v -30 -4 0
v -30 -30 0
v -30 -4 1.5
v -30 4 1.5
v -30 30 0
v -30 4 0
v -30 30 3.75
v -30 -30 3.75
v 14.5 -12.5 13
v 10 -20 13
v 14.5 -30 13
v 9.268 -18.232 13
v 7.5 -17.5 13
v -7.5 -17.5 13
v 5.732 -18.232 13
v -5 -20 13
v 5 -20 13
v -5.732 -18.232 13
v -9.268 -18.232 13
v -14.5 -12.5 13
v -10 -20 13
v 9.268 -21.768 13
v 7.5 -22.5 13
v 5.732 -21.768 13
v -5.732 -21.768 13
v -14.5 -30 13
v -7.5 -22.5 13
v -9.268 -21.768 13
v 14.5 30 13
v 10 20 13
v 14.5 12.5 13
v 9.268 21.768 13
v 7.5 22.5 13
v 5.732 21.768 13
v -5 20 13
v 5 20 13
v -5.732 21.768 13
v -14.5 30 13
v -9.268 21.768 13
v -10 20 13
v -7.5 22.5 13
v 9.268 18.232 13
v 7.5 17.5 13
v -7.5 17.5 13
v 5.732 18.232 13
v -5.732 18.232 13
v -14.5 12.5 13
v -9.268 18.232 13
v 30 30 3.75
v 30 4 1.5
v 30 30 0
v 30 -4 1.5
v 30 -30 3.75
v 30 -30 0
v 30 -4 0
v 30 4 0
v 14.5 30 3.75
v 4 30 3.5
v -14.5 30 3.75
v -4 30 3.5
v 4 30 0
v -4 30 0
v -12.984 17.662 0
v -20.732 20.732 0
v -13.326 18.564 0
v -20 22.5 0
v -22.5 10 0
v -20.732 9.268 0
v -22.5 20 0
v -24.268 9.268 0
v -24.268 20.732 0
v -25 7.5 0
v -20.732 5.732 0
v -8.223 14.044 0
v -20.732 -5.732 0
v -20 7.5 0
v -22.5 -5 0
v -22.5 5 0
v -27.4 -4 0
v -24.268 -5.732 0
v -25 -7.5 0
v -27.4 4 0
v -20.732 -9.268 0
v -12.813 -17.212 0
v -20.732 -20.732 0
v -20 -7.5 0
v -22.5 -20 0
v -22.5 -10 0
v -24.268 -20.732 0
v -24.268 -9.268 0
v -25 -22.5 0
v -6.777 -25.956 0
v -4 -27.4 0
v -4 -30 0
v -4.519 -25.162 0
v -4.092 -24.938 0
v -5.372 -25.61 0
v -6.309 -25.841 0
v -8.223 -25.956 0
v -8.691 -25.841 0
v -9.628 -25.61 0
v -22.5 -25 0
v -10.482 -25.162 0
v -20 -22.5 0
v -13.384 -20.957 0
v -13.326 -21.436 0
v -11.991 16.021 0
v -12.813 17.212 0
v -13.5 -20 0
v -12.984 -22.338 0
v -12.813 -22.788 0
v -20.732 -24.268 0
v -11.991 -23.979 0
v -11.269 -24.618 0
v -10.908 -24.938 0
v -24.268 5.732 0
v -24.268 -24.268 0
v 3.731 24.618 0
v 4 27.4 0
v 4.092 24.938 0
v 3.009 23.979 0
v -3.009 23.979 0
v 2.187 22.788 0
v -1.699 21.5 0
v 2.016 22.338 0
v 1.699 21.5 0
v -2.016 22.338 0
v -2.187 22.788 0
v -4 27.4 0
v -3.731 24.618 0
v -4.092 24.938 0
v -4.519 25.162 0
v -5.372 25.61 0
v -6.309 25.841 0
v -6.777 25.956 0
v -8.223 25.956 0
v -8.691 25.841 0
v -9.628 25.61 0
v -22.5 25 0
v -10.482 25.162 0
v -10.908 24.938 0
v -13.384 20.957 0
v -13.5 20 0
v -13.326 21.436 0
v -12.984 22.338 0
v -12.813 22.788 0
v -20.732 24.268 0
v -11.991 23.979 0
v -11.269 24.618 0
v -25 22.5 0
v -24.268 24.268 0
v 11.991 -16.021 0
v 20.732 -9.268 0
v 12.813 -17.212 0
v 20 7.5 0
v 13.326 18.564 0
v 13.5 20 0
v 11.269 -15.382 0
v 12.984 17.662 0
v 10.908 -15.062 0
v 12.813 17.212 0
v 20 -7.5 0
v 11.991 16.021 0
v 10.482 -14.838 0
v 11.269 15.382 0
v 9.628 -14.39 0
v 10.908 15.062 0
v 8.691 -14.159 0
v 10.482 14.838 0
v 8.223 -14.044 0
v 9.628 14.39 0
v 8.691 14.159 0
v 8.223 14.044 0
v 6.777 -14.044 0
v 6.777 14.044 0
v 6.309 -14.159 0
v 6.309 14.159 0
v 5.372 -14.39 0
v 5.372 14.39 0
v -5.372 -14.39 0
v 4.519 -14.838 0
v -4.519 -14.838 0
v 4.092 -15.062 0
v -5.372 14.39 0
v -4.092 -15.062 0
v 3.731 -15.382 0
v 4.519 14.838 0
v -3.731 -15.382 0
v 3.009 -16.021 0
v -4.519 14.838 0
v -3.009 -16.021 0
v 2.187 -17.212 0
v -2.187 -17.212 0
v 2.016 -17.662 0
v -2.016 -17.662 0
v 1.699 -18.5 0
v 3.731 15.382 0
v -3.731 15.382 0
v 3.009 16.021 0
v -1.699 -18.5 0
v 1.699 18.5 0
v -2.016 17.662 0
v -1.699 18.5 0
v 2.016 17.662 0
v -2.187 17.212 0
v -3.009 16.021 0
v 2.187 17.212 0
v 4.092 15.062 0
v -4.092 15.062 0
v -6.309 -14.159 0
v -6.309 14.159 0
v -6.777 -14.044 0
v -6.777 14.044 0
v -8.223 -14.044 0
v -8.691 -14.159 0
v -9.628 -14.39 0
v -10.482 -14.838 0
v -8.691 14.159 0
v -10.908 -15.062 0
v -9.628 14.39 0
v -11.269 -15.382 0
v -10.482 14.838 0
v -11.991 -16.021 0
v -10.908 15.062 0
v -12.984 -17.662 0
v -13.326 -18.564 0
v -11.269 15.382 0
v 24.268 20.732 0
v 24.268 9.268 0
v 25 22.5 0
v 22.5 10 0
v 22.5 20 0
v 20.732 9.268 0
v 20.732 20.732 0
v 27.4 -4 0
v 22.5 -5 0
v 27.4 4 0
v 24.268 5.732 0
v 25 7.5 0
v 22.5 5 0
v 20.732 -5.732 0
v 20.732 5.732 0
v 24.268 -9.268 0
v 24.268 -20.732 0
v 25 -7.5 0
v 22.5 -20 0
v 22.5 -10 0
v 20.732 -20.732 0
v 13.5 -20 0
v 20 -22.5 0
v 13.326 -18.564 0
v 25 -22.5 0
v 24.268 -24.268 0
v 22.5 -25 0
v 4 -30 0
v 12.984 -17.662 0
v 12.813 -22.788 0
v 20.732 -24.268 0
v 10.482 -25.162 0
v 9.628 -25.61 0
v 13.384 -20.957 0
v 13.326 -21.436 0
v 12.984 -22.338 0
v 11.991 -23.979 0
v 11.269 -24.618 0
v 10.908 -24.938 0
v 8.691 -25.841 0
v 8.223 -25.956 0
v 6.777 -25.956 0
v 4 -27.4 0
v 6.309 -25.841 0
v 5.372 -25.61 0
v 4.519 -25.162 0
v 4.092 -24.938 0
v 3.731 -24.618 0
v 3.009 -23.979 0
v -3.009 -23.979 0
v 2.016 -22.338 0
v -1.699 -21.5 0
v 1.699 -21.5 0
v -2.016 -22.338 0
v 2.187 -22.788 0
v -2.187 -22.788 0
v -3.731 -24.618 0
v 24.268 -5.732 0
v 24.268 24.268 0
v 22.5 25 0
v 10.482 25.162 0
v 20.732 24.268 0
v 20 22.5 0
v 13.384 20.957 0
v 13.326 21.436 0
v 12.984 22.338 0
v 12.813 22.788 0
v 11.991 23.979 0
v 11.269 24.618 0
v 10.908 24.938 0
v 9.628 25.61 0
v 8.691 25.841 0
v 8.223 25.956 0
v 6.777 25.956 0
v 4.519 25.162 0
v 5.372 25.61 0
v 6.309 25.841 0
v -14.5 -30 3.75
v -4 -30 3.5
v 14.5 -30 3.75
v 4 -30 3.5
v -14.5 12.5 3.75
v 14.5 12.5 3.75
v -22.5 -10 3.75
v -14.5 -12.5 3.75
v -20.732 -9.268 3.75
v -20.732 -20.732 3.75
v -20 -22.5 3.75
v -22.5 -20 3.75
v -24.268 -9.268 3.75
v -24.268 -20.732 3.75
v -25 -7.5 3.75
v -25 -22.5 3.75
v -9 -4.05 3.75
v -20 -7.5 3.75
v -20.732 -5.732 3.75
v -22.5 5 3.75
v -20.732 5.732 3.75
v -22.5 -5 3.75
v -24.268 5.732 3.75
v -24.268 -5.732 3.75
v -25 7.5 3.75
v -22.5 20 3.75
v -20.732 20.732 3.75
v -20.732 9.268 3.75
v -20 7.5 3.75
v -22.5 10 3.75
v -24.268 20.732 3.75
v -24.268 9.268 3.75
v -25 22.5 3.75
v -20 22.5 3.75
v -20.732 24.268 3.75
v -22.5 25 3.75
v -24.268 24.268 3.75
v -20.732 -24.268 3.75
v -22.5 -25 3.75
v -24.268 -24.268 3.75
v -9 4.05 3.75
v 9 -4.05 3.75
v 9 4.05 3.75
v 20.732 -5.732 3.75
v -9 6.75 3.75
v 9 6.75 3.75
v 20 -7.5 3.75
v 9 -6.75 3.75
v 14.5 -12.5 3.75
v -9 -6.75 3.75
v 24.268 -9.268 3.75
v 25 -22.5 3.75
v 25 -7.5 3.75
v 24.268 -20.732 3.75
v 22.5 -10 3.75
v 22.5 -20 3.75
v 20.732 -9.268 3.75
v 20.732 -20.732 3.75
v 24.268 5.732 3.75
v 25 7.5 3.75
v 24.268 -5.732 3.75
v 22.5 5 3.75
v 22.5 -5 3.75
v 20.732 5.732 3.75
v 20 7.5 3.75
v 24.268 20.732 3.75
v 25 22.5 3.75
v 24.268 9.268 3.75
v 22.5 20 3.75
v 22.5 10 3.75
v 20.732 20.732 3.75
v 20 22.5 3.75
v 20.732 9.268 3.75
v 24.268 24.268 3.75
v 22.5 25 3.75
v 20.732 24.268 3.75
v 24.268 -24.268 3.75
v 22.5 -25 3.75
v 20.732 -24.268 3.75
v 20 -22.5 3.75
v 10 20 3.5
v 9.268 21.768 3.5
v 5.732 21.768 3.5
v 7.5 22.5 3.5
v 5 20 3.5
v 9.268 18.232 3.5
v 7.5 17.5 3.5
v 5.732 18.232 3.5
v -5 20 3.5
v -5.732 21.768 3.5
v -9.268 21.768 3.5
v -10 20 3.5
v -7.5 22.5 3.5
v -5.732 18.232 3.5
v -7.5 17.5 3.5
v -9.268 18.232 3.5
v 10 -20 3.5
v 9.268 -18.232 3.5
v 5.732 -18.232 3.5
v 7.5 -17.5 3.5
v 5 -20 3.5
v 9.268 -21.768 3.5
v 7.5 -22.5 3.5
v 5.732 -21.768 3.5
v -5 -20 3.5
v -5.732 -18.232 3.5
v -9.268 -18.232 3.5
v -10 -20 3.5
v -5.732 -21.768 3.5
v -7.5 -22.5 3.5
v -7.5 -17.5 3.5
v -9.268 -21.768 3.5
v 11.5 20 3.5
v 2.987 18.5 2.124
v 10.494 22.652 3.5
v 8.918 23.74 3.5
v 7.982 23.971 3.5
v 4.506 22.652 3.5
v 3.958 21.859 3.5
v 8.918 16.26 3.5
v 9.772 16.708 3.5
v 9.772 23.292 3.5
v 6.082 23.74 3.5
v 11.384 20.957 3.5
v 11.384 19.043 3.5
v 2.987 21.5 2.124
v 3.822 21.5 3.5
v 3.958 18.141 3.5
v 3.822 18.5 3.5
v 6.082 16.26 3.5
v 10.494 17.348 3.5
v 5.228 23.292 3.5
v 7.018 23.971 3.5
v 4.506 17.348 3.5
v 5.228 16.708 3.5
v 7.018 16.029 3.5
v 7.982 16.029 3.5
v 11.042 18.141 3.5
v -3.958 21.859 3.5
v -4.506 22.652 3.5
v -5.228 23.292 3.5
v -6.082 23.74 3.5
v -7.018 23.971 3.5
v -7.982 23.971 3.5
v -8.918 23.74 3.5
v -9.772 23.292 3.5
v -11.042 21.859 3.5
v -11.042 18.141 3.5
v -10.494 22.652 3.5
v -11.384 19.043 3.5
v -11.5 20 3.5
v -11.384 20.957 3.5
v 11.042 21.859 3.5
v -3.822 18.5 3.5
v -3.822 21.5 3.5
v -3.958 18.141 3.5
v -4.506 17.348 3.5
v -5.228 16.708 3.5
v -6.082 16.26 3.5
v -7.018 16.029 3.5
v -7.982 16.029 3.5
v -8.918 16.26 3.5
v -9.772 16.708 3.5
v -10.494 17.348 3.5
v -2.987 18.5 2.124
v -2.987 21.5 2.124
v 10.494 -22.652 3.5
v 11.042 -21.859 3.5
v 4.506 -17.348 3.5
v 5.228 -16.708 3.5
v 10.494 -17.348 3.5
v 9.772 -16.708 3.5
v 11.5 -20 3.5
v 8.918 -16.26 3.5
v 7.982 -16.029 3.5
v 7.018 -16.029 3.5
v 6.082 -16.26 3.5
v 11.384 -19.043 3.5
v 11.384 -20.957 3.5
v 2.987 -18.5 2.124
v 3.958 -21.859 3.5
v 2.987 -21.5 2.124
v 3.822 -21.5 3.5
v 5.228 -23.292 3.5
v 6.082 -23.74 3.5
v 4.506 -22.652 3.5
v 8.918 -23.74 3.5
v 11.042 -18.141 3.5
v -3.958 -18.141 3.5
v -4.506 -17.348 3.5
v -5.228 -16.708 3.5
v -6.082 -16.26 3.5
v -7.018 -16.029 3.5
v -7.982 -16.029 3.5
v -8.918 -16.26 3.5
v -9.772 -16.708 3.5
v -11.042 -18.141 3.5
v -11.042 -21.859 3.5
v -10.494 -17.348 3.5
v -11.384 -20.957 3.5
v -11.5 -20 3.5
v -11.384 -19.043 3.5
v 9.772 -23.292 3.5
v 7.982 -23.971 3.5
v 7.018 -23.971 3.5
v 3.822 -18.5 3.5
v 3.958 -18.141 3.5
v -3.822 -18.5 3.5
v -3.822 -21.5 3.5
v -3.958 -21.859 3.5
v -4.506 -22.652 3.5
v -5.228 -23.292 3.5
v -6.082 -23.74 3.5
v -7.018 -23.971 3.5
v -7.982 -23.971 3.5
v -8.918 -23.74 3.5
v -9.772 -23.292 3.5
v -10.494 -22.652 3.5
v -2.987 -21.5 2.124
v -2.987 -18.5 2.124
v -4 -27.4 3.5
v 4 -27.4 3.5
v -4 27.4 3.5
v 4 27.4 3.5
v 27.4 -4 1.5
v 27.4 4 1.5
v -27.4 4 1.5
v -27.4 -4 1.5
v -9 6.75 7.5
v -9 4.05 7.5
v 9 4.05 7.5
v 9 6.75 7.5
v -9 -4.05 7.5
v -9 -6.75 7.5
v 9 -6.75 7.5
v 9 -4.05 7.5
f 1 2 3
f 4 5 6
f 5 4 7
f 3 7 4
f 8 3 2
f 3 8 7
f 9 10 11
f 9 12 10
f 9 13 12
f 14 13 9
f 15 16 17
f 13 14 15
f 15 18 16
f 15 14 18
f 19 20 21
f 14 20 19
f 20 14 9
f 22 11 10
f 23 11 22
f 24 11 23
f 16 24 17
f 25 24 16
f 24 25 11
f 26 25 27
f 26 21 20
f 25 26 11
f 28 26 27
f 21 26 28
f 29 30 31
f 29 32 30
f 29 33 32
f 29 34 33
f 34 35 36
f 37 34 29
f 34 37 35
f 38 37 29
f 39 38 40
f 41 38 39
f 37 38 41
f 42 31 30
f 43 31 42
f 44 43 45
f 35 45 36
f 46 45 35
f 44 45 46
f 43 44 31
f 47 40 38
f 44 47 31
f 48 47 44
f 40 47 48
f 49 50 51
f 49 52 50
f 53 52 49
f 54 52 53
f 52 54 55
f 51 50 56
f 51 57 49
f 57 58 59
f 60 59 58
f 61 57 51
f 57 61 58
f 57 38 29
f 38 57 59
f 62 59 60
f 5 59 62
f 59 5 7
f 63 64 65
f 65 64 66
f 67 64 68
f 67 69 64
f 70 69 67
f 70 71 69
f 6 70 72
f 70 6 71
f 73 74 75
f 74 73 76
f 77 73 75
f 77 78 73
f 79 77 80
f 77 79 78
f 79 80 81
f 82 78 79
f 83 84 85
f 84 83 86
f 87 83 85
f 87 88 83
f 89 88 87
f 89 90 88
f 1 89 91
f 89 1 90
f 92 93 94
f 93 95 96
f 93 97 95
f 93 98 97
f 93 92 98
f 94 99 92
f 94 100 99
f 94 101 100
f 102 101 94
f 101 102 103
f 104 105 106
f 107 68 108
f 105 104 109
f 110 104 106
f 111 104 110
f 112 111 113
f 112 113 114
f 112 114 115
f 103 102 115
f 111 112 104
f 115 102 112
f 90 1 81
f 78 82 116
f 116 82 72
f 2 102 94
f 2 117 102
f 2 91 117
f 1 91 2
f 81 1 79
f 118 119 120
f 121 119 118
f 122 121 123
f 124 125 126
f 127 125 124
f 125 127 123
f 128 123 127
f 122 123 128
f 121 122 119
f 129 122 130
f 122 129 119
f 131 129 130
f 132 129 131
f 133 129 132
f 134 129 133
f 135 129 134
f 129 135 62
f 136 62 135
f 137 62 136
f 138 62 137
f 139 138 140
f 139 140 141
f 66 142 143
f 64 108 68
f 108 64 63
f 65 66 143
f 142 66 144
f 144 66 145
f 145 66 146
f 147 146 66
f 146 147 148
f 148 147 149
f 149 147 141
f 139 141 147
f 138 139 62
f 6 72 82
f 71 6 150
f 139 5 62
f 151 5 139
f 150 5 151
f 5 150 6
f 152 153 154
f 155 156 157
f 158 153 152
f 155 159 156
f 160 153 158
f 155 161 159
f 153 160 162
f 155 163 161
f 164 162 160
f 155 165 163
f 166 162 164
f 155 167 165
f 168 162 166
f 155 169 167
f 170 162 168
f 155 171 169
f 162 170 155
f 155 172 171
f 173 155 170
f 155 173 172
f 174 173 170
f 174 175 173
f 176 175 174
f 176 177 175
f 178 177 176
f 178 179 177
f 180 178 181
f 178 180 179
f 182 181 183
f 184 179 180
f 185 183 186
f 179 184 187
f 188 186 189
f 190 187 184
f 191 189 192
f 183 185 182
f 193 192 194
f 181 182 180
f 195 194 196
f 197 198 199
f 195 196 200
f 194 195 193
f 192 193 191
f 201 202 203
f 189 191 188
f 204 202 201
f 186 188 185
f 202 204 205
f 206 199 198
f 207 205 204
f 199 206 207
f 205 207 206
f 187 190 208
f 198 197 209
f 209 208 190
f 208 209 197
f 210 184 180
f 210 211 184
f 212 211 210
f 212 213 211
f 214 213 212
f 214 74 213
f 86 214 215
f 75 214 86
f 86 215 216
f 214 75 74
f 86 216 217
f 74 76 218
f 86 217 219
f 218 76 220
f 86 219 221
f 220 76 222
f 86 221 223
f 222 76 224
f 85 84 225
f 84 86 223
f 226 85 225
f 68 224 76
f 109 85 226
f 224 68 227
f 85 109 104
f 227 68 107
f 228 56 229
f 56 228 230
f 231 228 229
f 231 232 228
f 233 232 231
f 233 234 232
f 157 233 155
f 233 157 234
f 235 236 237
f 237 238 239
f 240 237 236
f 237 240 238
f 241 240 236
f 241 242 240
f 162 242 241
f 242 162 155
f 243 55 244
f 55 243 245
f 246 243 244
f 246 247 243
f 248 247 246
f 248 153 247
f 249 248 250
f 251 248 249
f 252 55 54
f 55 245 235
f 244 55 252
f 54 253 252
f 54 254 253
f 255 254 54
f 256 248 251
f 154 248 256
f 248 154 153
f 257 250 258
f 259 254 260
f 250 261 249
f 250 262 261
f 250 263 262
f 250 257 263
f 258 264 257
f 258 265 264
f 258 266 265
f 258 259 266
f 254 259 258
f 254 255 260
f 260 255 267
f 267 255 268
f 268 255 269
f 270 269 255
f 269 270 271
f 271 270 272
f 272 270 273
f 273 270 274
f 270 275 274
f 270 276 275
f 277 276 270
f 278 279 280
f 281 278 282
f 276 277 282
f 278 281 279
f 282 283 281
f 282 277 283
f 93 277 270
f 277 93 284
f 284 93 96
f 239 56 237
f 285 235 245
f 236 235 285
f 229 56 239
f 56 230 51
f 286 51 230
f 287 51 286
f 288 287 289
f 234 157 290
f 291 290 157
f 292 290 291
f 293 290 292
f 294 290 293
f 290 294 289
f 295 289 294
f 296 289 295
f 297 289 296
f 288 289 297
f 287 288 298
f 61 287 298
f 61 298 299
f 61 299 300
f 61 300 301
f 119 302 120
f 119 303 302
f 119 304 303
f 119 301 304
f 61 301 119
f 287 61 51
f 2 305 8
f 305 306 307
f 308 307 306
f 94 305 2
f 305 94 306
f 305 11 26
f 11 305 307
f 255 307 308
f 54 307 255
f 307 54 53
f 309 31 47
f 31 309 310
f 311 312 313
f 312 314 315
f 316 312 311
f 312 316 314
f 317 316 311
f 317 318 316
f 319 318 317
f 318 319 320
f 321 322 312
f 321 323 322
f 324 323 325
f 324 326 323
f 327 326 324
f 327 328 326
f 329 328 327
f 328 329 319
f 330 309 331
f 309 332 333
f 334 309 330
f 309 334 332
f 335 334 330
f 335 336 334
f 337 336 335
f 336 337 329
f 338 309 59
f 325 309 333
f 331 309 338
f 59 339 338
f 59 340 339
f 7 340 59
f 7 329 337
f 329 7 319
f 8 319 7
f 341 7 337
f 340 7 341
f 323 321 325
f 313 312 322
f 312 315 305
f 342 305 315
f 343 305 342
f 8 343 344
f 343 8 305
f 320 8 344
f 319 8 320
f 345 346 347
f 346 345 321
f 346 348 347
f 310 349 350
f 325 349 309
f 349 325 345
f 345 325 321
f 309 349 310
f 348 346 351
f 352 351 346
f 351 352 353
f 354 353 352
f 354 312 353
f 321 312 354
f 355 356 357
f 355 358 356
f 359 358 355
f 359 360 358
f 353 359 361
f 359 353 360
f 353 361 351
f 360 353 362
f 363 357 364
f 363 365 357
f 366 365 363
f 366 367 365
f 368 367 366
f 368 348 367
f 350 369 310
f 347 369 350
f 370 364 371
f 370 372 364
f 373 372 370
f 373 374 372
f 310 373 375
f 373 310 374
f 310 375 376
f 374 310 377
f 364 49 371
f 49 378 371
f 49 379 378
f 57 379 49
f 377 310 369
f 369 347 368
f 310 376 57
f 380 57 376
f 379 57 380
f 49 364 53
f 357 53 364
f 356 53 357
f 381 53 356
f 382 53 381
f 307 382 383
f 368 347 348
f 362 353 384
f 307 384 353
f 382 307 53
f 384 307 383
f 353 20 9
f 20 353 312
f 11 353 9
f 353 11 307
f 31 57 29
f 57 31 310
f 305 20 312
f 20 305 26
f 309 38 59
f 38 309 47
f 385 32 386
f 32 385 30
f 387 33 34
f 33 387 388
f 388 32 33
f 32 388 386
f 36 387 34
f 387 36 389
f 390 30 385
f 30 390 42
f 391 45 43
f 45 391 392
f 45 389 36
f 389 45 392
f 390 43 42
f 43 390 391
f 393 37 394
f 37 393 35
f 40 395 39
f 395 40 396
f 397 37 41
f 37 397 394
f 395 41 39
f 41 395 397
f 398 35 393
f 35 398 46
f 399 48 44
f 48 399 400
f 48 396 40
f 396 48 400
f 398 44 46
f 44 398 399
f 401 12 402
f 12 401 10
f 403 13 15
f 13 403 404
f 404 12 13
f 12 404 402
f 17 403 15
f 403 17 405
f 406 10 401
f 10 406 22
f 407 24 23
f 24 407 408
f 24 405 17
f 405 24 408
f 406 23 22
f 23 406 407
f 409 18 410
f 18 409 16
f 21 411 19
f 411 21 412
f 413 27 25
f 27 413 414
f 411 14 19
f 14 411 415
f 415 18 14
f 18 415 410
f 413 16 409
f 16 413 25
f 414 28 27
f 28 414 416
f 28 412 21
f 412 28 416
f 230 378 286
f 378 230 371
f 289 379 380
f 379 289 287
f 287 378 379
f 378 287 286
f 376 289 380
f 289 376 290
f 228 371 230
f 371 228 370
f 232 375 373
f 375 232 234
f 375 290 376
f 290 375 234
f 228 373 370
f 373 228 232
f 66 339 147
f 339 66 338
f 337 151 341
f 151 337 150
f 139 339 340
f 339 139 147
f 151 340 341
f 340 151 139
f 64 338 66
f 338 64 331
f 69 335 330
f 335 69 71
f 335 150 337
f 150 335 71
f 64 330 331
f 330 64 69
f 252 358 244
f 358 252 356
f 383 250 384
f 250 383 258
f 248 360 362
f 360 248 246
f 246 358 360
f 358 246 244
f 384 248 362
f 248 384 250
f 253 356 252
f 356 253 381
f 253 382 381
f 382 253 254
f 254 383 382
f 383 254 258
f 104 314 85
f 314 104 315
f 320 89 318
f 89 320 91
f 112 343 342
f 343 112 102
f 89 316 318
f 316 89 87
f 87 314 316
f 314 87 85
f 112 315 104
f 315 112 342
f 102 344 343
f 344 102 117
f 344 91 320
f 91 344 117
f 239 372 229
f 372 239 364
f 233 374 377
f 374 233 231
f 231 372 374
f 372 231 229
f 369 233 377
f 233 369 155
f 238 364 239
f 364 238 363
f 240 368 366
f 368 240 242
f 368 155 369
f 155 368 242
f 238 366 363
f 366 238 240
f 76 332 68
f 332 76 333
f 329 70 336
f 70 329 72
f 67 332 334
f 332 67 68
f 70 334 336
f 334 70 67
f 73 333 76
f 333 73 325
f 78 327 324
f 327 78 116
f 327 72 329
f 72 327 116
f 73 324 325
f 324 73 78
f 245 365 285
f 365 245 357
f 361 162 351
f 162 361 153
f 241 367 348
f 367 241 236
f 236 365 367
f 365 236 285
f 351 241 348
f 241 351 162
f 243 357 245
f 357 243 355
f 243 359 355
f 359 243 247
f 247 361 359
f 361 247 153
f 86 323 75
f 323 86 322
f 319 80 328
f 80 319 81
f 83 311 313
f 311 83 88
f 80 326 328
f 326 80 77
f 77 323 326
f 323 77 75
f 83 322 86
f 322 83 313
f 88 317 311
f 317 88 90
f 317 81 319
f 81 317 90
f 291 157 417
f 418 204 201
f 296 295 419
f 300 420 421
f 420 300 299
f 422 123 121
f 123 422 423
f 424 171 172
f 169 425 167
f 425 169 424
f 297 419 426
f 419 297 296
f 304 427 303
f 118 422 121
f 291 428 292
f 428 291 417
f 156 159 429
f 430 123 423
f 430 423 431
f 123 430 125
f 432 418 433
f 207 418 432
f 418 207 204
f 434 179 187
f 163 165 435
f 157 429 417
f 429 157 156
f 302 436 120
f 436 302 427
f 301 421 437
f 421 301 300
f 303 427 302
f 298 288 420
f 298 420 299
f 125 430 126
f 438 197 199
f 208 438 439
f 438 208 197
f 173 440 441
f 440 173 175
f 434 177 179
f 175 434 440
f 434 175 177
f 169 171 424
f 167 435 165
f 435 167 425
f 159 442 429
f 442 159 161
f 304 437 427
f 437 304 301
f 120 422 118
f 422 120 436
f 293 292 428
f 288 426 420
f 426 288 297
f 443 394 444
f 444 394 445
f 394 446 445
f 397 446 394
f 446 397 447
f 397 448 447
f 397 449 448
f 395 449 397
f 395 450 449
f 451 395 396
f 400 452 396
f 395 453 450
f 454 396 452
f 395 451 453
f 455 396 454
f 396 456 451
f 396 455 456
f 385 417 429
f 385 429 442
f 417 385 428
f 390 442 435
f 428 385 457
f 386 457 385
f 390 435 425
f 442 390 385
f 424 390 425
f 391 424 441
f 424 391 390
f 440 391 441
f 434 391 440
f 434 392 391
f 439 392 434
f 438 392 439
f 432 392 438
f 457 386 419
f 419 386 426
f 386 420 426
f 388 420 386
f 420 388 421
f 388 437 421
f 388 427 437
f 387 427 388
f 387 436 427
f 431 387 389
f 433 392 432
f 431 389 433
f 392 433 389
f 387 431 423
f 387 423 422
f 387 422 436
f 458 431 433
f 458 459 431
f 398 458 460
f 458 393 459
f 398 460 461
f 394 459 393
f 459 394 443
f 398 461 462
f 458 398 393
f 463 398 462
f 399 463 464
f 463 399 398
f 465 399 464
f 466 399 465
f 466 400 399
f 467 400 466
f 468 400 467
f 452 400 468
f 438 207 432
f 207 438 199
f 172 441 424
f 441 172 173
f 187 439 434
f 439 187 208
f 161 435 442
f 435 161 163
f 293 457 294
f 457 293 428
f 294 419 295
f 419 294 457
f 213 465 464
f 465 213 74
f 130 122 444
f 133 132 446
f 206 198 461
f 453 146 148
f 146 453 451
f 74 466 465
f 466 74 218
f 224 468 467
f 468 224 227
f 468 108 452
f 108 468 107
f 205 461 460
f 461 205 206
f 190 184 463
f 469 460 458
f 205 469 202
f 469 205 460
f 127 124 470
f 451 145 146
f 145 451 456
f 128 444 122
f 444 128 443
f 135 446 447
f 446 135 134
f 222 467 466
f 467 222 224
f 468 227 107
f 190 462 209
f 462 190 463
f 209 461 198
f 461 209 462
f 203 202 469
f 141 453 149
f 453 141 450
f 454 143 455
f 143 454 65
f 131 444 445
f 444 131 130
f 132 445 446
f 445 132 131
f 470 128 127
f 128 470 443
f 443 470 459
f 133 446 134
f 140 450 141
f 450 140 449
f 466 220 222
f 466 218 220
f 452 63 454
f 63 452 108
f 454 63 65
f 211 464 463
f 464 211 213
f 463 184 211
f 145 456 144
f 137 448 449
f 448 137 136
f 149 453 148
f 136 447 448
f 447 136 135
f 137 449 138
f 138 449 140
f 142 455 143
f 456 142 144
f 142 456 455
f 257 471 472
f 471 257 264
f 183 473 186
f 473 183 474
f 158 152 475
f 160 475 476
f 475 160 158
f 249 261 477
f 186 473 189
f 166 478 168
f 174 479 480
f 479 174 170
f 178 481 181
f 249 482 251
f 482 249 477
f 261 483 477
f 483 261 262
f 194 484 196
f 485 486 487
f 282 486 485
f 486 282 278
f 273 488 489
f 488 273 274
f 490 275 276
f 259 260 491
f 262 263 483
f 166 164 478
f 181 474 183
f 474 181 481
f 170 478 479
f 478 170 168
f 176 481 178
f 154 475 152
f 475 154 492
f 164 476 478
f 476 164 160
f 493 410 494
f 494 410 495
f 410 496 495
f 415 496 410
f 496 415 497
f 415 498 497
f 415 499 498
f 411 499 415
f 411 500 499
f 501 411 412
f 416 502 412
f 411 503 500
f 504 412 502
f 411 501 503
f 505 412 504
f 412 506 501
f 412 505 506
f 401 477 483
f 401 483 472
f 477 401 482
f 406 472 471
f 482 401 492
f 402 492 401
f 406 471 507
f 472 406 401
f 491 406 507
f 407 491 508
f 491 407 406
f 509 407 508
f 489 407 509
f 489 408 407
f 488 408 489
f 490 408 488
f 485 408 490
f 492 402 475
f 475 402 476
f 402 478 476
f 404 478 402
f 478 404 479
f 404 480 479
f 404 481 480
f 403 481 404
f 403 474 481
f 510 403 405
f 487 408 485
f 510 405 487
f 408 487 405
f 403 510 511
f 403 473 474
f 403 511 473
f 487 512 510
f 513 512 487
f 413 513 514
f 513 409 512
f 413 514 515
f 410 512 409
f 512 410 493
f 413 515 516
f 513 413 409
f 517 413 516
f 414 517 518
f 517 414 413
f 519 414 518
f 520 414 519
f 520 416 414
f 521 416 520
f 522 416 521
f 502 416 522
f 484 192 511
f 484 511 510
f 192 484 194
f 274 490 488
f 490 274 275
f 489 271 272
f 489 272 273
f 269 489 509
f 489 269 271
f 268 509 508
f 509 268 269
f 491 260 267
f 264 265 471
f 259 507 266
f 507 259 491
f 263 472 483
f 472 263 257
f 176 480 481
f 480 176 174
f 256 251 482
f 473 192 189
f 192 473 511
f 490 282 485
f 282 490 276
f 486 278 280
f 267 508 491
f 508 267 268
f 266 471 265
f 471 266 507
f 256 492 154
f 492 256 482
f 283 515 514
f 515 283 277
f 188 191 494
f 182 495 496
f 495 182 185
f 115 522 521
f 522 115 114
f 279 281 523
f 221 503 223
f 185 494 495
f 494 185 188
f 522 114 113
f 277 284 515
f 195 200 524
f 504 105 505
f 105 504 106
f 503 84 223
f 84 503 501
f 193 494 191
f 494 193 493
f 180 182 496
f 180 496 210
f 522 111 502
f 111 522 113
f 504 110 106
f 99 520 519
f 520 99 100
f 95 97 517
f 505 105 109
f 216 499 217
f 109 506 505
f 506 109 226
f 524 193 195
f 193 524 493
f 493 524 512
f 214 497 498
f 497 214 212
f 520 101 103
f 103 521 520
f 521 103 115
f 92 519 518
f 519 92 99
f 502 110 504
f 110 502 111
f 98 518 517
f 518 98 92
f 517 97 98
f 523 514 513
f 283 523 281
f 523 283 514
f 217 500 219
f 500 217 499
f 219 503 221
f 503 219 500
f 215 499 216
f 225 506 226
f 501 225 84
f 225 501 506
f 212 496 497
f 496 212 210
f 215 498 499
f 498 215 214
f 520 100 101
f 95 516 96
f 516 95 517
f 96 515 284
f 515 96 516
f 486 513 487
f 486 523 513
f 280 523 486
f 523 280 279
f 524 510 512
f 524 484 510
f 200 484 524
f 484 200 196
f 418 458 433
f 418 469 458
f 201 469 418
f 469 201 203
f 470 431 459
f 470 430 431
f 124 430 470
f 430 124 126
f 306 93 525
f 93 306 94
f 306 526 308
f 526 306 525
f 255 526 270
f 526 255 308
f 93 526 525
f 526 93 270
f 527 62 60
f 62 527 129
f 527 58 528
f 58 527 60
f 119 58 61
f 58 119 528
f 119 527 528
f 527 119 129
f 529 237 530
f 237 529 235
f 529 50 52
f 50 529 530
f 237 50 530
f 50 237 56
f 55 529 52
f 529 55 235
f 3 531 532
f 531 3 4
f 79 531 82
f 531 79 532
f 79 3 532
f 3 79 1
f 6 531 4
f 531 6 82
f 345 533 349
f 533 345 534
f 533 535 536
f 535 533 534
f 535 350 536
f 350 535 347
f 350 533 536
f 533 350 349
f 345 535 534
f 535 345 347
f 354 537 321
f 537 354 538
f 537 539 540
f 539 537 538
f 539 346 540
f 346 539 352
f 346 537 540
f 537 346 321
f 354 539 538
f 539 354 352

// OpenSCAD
//block shape
x=60;
y=60;
z=13;

// track channel
f=x+10;
g=25;
h=9.5;
// block top
e=20;
r=y+10;
t=16.5;

// spacing of screw holes
cx=15;
cy=40;
dx=15;
dy=45;


difference()
{
    translate([0,0,z]/2) cube ([x,y,z],center=true);
    translate([0,0,z+4]/2) cube([f,g,h],center=true);
    translate([49,0,z+11]/2) cube ([e,r,t],center=true);
        translate([-49,0,z+11]/2) cube ([e,r,t],center=true);

  translate([cx,cy,0]/2) cylinder(d=5, h=50,  center=true);
  translate([-cx,cy,0]/2) cylinder(d=5, h=50,  center=true);
    translate([cx,-cy,0]/2) cylinder(d=5, h=50,  center=true);
    translate([-cx,-cy,0]/2) cylinder(d=5, h=50,  center=true);
  translate([dy,dy,0]/2) cylinder(d=5, h=50,  center=true);
  translate([-dy,dy,0]/2) cylinder(d=5, h=50,  center=true);
    translate([dy,-dy,0]/2) cylinder(d=5, h=50,  center=true);
    translate([-dy,-dy,0]/2) cylinder(d=5, h=50,  center=true);  
    translate([dy,dx,0]/2) cylinder(d=5, h=50,  center=true);
  translate([-dy,dx,0]/2) cylinder(d=5, h=50,  center=true);  
  translate([dy,-dx,0]/2) cylinder(d=5, h=50,  center=true);
  translate([-dy,-dx,0]/2) cylinder(d=5, h=50,  center=true);  
    
 translate([cx,cy,0]/2)  cylinder(d1=16, d2=8, h=7,  center=true);
 translate([-cx,cy,0]/2) cylinder(d1=16, d2=8, h=7, center=true);
    translate([cx,-cy,0]/2) cylinder(d1=16, d2=8, h=7,  center=true);
    translate([-cx,-cy,0]/2) cylinder(d1=16, d2=8, h=7,  center=true);    
// zip tie knotches    
    translate([0,-cy/2,11.5-10]) cube([18,3,4],center=true);
    translate([0,cy/2,11.5-10]) cube([18,3,4],center=true);
// removal knotches
       translate([0,-(6.8+51)/2,11.5-10]) cube([8,3,4],center=true);
   translate([0,(6.8+51)/2,11.5-10]) cube([8,3,4],center=true);
   translate([(6.8+51)/2,0,11.5-11]) cube([3,8,2],center=true);
   translate([-(6.8+51)/2,0,11.5-11]) cube([3,8,2],center=true);
}

translate([0,(6.8+4)/2,z-8]) cube([18,2.7,5],center=true);
translate([0,-(6.8+4)/2,z-8]) cube([18,2.7,5],center=true);
